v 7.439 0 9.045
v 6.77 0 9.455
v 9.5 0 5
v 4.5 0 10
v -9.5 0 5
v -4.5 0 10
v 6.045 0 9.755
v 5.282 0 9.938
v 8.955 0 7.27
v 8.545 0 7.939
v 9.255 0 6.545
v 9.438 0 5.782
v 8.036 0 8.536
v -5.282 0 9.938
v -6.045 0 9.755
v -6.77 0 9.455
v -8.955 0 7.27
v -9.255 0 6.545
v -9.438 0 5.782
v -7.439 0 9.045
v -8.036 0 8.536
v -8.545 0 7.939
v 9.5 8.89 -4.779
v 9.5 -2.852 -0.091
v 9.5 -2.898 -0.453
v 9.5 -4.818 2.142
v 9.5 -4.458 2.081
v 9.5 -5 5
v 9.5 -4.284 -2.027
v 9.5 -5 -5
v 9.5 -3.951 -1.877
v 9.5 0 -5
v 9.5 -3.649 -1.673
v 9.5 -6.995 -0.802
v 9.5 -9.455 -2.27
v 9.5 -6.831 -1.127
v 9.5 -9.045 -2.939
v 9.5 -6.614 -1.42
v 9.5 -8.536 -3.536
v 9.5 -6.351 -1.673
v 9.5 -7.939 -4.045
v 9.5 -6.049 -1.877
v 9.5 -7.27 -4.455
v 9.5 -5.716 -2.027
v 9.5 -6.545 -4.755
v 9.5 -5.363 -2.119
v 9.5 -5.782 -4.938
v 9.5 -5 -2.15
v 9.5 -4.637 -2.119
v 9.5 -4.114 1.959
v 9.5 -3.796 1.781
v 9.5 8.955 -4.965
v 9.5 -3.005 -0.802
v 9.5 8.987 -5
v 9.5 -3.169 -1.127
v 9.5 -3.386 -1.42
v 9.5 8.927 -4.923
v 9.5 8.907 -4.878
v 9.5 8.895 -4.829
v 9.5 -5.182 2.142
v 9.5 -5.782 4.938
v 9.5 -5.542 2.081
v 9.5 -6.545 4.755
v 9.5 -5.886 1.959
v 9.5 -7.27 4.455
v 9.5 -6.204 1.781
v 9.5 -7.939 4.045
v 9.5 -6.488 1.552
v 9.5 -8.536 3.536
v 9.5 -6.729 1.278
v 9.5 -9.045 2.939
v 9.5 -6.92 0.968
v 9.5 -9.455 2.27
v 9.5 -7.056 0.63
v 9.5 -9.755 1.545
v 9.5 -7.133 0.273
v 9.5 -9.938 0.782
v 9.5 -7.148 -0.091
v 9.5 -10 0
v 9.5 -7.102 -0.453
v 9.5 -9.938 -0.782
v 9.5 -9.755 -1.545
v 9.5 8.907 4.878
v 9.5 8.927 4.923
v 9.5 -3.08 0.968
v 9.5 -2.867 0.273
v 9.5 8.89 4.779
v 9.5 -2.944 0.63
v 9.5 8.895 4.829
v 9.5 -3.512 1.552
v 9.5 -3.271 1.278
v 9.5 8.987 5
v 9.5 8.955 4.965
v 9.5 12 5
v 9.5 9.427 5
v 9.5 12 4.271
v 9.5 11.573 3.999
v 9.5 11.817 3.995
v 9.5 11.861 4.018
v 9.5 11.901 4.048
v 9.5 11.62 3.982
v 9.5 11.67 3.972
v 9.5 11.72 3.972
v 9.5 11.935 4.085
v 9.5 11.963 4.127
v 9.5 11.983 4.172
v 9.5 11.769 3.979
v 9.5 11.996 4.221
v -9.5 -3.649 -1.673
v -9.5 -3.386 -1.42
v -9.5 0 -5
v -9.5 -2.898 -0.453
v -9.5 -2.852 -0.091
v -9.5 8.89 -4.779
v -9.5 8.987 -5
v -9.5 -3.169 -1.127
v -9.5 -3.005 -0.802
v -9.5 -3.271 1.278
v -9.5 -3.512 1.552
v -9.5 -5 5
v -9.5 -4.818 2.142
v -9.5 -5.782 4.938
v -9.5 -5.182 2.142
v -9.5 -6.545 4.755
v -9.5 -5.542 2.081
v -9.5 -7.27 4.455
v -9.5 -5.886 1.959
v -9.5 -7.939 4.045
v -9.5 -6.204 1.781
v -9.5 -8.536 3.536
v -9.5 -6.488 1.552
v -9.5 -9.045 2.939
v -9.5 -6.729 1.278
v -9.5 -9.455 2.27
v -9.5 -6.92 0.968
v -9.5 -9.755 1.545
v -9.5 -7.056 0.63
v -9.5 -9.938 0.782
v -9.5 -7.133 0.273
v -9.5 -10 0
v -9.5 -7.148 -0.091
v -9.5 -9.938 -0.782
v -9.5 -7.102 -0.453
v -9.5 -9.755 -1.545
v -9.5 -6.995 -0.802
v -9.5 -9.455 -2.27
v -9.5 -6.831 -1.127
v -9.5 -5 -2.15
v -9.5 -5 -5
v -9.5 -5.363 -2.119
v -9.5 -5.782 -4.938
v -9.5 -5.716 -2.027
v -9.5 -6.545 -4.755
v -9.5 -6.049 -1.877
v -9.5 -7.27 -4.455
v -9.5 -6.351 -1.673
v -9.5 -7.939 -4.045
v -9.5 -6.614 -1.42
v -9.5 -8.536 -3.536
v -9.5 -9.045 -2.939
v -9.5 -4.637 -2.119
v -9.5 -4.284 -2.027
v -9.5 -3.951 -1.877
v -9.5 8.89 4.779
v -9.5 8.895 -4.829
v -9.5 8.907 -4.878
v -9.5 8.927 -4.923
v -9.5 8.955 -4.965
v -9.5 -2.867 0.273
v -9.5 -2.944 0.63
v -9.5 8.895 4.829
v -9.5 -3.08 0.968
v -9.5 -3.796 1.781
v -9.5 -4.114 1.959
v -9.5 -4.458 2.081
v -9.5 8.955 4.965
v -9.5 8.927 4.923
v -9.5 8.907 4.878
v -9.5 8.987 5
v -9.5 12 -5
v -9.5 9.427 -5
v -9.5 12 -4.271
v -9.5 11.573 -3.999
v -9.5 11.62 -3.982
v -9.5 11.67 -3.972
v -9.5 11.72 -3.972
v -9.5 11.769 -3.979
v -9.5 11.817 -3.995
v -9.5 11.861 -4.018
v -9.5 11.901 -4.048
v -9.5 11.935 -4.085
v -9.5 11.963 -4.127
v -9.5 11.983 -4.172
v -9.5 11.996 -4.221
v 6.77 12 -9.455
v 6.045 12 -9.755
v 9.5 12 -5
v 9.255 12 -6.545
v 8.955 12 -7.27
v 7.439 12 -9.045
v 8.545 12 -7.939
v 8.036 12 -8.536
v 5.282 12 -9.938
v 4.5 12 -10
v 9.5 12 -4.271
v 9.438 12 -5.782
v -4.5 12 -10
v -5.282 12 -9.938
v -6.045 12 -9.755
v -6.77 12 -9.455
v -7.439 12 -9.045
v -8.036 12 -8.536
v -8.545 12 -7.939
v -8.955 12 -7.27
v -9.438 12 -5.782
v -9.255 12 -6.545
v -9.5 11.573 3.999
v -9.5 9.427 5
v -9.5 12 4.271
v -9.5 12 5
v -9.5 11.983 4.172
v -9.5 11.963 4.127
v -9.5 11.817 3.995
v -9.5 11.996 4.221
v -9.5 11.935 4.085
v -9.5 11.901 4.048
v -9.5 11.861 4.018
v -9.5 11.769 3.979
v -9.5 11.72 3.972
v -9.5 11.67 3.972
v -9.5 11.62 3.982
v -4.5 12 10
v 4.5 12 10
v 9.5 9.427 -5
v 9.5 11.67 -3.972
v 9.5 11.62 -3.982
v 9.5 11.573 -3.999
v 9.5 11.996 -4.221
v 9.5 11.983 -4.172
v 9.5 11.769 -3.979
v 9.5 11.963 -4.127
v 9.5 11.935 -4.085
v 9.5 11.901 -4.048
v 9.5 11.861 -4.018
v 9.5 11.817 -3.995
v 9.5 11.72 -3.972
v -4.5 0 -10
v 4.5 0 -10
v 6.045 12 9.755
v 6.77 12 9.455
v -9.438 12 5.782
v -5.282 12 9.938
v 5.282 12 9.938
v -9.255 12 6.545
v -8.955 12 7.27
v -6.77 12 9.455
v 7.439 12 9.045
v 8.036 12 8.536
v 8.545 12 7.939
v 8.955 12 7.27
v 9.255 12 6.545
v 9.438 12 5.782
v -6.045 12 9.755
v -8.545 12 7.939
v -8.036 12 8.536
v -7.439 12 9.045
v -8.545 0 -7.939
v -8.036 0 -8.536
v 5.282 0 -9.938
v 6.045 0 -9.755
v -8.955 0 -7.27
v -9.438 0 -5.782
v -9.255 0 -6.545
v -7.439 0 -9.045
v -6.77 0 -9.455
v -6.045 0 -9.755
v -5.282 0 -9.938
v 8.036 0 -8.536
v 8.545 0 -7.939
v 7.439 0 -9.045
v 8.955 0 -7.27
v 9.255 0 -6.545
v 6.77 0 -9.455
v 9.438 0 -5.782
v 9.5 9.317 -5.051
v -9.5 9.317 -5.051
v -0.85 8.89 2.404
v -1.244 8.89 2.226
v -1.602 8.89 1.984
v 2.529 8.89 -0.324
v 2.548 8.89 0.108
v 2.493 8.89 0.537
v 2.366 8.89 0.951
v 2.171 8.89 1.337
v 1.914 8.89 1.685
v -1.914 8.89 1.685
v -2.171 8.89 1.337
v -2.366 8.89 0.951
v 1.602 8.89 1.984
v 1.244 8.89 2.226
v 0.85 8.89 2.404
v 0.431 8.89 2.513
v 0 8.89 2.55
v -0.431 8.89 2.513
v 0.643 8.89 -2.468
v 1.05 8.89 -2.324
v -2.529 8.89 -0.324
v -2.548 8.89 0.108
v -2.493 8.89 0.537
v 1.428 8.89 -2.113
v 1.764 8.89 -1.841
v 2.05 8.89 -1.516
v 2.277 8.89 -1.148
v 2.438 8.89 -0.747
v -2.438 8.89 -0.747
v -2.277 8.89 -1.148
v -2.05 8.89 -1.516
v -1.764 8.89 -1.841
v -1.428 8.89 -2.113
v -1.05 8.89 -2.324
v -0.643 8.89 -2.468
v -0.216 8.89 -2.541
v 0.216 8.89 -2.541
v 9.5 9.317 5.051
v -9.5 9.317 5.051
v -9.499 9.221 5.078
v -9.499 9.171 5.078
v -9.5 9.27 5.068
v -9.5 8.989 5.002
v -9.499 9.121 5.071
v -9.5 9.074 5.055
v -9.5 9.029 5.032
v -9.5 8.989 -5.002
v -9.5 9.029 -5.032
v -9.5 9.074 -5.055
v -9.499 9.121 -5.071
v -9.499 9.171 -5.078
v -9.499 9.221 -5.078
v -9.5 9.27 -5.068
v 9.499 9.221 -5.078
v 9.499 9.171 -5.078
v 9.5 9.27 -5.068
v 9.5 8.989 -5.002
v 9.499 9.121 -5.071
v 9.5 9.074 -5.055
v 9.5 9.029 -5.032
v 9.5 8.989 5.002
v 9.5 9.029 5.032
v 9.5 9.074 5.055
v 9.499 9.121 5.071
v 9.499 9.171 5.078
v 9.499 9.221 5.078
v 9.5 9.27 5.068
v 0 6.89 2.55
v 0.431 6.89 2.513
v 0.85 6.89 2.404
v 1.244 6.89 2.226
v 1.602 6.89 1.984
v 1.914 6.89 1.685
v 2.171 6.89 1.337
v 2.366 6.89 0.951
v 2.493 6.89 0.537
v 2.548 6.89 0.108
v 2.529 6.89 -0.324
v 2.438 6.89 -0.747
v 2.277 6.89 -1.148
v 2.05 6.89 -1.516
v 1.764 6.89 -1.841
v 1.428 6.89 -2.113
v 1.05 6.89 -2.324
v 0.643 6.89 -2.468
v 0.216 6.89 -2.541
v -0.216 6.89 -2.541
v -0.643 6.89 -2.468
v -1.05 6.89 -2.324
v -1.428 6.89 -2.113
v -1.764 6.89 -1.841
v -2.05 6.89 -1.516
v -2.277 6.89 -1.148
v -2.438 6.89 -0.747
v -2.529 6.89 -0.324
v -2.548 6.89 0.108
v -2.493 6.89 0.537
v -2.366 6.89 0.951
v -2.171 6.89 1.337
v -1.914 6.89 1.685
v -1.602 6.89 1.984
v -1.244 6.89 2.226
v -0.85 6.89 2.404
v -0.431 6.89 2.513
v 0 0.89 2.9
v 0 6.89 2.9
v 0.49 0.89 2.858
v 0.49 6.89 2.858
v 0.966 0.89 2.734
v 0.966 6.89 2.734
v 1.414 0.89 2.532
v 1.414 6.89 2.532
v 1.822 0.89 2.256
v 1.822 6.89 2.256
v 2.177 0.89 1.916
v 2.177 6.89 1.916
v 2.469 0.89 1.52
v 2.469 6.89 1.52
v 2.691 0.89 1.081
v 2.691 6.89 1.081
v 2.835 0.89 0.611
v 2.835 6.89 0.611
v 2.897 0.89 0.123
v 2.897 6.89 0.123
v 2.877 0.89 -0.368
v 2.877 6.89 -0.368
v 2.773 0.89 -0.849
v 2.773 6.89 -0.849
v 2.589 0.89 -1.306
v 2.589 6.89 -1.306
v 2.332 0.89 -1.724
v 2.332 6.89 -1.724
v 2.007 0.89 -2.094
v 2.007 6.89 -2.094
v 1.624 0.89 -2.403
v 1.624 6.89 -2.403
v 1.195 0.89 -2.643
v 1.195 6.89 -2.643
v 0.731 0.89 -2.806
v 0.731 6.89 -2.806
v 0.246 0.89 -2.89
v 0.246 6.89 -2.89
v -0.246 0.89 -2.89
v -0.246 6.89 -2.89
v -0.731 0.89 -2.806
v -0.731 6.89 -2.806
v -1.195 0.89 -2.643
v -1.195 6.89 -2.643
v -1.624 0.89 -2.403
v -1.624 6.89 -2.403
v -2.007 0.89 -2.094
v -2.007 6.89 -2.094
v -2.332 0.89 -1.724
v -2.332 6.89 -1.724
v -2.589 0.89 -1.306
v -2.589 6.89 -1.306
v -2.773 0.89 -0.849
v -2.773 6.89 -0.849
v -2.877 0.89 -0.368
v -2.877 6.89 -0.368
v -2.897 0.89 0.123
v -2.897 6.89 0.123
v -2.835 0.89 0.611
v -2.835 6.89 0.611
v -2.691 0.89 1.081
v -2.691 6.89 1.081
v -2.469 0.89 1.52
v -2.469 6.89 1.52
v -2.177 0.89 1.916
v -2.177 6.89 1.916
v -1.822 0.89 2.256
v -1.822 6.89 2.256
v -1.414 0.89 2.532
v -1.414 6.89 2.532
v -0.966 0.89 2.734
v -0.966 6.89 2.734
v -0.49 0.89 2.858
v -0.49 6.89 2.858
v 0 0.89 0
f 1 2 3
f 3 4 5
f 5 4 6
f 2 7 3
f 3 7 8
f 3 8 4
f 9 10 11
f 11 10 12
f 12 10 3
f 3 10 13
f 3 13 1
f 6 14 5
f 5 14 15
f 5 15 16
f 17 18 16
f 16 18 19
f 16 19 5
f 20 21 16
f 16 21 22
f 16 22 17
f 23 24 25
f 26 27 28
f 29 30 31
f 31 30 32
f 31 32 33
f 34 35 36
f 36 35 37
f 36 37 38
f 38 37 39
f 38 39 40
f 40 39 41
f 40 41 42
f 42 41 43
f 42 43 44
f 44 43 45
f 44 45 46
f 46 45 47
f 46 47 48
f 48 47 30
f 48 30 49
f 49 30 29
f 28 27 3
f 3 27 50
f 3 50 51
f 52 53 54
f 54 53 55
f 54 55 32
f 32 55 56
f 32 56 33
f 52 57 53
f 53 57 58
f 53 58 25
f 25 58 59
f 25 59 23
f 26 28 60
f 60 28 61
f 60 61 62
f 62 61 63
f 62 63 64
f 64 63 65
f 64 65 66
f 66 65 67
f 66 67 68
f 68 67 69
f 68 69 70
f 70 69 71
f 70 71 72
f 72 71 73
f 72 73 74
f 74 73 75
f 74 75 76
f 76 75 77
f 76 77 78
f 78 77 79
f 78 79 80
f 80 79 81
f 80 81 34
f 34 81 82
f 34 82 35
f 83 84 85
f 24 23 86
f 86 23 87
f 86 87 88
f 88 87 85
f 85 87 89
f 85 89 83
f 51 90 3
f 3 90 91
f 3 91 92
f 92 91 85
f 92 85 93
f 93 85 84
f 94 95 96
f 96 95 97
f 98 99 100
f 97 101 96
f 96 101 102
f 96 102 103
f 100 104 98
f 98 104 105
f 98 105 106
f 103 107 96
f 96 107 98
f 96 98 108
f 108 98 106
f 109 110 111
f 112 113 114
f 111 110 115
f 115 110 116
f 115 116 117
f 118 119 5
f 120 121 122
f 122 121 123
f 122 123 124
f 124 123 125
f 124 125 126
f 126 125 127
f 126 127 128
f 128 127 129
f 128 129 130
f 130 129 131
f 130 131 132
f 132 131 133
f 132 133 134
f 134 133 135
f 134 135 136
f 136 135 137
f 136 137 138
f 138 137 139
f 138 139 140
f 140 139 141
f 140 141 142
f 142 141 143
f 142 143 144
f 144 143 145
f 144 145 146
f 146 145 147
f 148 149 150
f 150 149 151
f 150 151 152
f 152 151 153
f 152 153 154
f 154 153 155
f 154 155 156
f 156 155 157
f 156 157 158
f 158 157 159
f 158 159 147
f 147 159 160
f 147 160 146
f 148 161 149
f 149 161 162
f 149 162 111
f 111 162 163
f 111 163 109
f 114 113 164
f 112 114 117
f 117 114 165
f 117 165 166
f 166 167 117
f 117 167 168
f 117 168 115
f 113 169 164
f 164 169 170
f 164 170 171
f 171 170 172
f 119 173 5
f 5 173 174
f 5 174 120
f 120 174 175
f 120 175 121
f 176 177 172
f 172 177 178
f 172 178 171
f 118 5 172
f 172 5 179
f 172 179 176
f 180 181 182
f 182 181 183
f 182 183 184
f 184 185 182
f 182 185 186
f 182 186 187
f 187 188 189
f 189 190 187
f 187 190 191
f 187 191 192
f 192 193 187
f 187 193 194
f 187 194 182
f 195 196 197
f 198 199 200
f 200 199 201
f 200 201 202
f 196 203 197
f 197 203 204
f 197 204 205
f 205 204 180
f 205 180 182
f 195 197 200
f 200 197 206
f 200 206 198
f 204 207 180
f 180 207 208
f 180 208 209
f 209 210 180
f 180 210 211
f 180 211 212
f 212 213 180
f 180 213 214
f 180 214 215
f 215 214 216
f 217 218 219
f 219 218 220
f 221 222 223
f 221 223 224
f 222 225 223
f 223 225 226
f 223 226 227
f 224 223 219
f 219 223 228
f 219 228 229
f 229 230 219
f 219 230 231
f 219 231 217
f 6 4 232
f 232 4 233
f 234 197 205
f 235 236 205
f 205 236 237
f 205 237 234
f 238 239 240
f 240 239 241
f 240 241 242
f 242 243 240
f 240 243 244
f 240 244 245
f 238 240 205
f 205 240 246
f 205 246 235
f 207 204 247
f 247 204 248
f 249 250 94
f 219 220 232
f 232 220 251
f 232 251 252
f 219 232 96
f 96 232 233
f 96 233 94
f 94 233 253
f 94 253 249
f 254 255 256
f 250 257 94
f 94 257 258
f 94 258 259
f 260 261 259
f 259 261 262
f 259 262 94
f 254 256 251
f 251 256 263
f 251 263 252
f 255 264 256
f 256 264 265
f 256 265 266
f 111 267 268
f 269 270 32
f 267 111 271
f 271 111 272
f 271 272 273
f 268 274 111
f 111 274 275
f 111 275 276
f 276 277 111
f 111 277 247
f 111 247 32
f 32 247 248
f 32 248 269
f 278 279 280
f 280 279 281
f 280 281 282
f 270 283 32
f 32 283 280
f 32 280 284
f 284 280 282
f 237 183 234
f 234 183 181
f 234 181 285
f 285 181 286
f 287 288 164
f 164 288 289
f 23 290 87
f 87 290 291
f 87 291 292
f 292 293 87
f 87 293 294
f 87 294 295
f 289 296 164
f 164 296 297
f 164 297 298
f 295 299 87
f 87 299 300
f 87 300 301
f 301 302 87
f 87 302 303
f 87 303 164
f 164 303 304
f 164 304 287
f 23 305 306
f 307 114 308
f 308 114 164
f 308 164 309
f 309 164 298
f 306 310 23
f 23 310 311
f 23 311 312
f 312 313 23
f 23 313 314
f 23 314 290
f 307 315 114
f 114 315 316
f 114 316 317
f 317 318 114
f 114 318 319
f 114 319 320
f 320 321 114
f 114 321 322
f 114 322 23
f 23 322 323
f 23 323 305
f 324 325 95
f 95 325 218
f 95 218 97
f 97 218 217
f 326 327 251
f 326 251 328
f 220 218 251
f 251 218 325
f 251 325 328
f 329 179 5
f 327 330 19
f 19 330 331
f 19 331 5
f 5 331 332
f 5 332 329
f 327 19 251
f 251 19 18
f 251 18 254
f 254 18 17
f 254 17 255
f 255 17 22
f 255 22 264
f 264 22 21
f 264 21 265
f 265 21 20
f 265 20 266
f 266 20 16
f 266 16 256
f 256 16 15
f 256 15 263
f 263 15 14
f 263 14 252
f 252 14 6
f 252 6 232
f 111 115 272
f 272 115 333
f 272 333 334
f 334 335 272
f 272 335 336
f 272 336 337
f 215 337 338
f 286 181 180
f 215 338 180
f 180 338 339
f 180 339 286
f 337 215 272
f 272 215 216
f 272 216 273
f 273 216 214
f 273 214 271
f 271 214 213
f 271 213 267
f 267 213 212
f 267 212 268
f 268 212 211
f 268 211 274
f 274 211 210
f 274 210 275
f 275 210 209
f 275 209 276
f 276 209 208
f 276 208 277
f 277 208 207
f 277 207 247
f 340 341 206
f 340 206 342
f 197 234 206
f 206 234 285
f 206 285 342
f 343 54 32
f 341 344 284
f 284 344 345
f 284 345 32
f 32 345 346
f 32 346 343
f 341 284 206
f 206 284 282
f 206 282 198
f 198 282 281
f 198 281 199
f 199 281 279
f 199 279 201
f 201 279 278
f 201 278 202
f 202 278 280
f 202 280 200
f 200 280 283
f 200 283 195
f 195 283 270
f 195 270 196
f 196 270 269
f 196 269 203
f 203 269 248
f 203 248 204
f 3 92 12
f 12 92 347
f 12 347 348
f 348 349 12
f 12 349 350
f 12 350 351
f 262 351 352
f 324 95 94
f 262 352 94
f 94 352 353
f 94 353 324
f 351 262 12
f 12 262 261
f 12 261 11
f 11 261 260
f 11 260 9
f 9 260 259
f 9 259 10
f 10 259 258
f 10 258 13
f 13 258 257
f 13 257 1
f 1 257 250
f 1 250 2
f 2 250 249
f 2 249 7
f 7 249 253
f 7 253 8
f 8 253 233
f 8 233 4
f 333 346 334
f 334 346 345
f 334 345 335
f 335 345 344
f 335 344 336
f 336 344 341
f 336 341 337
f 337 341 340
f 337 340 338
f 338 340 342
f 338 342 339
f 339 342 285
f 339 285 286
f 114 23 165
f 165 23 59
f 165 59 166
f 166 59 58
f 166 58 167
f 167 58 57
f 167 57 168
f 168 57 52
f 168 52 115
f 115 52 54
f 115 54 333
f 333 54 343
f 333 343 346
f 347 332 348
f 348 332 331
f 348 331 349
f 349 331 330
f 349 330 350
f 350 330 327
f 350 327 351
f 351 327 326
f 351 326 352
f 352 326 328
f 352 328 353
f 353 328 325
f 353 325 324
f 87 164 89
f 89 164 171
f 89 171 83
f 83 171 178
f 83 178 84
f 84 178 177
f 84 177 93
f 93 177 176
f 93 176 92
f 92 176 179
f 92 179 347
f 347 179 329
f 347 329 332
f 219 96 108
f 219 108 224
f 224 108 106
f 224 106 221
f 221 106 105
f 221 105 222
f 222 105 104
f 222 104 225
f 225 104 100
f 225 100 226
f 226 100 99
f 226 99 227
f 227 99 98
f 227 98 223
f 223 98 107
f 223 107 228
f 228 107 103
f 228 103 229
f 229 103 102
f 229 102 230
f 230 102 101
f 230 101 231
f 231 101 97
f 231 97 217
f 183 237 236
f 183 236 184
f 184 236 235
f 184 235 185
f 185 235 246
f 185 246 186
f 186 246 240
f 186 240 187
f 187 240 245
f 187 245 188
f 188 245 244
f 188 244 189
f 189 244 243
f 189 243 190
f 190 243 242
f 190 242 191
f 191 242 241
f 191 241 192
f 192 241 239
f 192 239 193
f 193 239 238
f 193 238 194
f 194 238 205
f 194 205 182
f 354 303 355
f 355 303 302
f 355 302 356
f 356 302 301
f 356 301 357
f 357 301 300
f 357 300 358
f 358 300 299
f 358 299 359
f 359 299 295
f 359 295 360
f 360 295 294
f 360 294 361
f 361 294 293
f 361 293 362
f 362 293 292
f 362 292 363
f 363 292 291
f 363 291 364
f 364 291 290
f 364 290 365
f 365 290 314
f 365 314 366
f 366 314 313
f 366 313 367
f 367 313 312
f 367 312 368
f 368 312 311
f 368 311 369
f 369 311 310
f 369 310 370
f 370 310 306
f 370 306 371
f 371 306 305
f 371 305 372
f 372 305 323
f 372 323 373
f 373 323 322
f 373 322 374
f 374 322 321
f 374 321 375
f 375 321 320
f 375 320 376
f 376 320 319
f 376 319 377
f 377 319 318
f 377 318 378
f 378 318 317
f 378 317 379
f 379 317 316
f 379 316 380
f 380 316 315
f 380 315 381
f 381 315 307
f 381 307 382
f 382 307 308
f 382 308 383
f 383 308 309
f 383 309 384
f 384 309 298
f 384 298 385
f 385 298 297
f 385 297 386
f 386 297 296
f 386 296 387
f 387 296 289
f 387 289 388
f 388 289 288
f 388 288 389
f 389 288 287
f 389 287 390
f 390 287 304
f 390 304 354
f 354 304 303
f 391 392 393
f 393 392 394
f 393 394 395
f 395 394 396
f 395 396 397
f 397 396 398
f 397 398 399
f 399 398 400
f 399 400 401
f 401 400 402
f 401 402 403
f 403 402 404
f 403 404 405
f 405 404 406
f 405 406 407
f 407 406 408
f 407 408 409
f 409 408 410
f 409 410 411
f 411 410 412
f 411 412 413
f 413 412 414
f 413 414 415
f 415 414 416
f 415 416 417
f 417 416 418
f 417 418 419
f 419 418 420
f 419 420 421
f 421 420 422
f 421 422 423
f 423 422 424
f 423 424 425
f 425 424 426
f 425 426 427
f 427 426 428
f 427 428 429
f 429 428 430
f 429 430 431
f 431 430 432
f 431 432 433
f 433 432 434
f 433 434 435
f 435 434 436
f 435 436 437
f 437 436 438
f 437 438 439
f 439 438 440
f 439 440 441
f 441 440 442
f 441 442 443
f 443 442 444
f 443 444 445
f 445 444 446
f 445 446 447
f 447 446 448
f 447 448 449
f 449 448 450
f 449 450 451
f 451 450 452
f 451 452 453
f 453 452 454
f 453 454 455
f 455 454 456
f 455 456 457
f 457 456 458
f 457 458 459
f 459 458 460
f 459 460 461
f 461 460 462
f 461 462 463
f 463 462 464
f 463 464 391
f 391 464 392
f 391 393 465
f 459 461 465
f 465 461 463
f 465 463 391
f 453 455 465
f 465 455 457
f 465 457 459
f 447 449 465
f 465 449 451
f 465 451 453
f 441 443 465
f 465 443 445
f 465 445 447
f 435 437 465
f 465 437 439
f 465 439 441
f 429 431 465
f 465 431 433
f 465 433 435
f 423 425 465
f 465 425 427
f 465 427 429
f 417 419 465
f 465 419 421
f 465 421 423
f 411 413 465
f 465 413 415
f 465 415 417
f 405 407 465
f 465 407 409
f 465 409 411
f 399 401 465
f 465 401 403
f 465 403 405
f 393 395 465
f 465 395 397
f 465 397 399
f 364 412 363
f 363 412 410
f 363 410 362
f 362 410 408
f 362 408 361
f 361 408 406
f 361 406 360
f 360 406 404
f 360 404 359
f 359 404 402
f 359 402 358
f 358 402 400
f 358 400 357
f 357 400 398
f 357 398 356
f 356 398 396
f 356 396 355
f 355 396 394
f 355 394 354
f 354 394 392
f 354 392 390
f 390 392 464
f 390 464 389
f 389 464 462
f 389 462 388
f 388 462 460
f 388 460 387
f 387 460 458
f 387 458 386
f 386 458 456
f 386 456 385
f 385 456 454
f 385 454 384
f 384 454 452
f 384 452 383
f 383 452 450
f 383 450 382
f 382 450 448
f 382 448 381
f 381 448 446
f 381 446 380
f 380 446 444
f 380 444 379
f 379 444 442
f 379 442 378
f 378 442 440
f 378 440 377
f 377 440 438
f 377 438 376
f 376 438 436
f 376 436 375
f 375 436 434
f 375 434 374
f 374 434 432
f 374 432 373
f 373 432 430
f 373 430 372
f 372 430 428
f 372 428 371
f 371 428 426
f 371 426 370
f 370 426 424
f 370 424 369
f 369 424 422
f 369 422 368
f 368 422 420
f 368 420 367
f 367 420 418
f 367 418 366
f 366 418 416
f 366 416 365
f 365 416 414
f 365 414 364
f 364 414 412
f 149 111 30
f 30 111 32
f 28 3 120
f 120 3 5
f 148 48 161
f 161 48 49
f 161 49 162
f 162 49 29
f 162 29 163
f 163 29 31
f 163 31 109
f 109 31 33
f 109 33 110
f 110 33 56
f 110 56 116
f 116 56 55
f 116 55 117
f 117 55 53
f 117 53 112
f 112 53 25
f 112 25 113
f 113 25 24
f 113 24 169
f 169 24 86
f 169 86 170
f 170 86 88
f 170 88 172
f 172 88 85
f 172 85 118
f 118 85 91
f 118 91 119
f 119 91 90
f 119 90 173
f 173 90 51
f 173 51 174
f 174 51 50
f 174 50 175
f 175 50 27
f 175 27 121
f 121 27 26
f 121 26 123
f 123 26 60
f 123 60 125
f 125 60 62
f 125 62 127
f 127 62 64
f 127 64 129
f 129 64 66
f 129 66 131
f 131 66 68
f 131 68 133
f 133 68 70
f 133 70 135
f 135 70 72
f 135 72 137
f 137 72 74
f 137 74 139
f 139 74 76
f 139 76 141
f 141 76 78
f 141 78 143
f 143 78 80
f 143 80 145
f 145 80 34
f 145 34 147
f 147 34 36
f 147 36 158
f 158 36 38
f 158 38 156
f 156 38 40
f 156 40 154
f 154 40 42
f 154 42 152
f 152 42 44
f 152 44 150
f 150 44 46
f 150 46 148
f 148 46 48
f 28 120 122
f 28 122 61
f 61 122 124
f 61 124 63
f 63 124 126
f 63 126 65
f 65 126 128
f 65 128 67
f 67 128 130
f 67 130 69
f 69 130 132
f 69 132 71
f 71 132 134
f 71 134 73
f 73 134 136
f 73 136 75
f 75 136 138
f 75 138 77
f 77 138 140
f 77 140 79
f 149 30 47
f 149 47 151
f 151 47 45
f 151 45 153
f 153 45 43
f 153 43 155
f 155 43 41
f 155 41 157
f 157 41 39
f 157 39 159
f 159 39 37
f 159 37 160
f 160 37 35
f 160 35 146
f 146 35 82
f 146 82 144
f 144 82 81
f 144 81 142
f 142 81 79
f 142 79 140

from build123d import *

# Parameters (mm, degrees)
SKETCH2_W           = 19
SKETCH2_H           = 20
BOSS_EXTRUDE1_DEPTH = 12
CUT_EXTRUDE1_DEPTH  = 25.596747752
FILLET1_R           = 5
FILLET2_R           = 0.3
SKETCH4_R           = 2.55
CUT_EXTRUDE2_DEPTH  = 2
SKETCH5_R           = 2.9
CUT_EXTRUDE3_DEPTH  = 6
SKETCH6_W           = 19
SKETCH6_H           = 10
BOSS_EXTRUDE2_DEPTH = 10
SKETCH7_R           = 2.15
CUT_EXTRUDE4_DEPTH  = 25.596747919
FILLET3_R           = 5


# Some blends are built 0.0001 mm under size
with BuildPart() as part:
    # Sketch2 → Boss-Extrude1 (new body)
    with BuildSketch(Plane(origin=(0, 0, 0), x_dir=(1, 0, 0), z_dir=(0, 1, 0))):
        Rectangle(SKETCH2_W, SKETCH2_H)
    extrude(amount=BOSS_EXTRUDE1_DEPTH)

    # Sketch3 → Cut-Extrude1 (cut, through all)
    with BuildSketch(Plane(origin=(9.5, 0, 0), x_dir=(0, 0, -1), z_dir=(1, 0, 0))):
        Polygon((-3.8, 12), (3.8, 12), (5.25, 8.890464965), (-5.25, 8.890464965), align=None)
    extrude(amount=-CUT_EXTRUDE1_DEPTH, mode=Mode.SUBTRACT)

    # Fillet1
    # the kernel refuses this fillet: 5 mm, written as the material it takes off along each edge
    with BuildSketch(Plane(origin=(-9.5, -12.5, -10), x_dir=(1, 0, 0), z_dir=(0, 1, 0)), Plane(origin=(-9.5, -12.5, 10), x_dir=(0, 0, -1), z_dir=(0, 1, 0))) as fillet1_piece_1:
        with BuildLine():
            CenterArc((FILLET1_R, -FILLET1_R), FILLET1_R, 90, 90)
            Line((0, -FILLET1_R), (0, 0))
            Line((0, 0), (FILLET1_R, 0))
        make_face()
    extrude(amount=37, mode=Mode.SUBTRACT)
    with BuildSketch(Plane(origin=(9.5, -12.5, -10), x_dir=(-1, 0, 0), z_dir=(0, 1, 0)), Plane(origin=(9.5, -12.5, 10), x_dir=(0, 0, -1), z_dir=(0, 1, 0))) as fillet1_piece_2:
        with BuildLine():
            CenterArc((FILLET1_R, FILLET1_R), FILLET1_R, 180, 90)
            Line((0, FILLET1_R), (0, 0))
            Line((0, 0), (FILLET1_R, 0))
        make_face()
    extrude(amount=37, mode=Mode.SUBTRACT)

    # Fillet2
    fillet2_edges = [part.edges().sort_by_distance(p)[0] for p in [
        (0, 12, 3.8),
        (0, 12, -3.8),
        (0, 8.890464965, -5.25),
        (0, 8.890464965, 5.25),
    ]]
    fillet(fillet2_edges, radius=FILLET2_R)

    # Sketch4 → Cut-Extrude2 (cut)
    with BuildSketch(Plane(origin=(0, 8.890464965, 0), x_dir=(1, 0, 0), z_dir=(0, 1, 0))):
        with Locations(Location((0, 0, 0), (0, 0, 270))):
            Circle(SKETCH4_R)
    extrude(amount=-CUT_EXTRUDE2_DEPTH, mode=Mode.SUBTRACT)

    # Sketch5 → Cut-Extrude3 (cut)
    with BuildSketch(Plane(origin=(0, 6.890464965, 0), x_dir=(1, 0, 0), z_dir=(0, 1, 0))):
        with Locations(Location((0, 0, 0), (0, 0, 270))):
            Circle(SKETCH5_R)
    extrude(amount=-CUT_EXTRUDE3_DEPTH, mode=Mode.SUBTRACT)

    # Sketch6 → Boss-Extrude2 (add)
    with BuildSketch(Plane.XZ):
        Rectangle(SKETCH6_W, SKETCH6_H)
    extrude(amount=BOSS_EXTRUDE2_DEPTH)

    # Sketch7 → Cut-Extrude4 (cut, through all)
    with BuildSketch(Plane(origin=(9.5, 0, 0), x_dir=(0, 0, -1), z_dir=(1, 0, 0))):
        with Locations((0, -5)):
            Circle(SKETCH7_R)
    extrude(amount=-CUT_EXTRUDE4_DEPTH, mode=Mode.SUBTRACT)

    # Fillet3
    fillet3_edges = [part.edges().sort_by_distance(p)[0] for p in [
        (0, -10, -5),
        (0, -10, 5),
    ]]
    fillet(fillet3_edges, radius=FILLET3_R - 0.0001)  # a hair under: the kernel refuses the full size


solid = part.part
